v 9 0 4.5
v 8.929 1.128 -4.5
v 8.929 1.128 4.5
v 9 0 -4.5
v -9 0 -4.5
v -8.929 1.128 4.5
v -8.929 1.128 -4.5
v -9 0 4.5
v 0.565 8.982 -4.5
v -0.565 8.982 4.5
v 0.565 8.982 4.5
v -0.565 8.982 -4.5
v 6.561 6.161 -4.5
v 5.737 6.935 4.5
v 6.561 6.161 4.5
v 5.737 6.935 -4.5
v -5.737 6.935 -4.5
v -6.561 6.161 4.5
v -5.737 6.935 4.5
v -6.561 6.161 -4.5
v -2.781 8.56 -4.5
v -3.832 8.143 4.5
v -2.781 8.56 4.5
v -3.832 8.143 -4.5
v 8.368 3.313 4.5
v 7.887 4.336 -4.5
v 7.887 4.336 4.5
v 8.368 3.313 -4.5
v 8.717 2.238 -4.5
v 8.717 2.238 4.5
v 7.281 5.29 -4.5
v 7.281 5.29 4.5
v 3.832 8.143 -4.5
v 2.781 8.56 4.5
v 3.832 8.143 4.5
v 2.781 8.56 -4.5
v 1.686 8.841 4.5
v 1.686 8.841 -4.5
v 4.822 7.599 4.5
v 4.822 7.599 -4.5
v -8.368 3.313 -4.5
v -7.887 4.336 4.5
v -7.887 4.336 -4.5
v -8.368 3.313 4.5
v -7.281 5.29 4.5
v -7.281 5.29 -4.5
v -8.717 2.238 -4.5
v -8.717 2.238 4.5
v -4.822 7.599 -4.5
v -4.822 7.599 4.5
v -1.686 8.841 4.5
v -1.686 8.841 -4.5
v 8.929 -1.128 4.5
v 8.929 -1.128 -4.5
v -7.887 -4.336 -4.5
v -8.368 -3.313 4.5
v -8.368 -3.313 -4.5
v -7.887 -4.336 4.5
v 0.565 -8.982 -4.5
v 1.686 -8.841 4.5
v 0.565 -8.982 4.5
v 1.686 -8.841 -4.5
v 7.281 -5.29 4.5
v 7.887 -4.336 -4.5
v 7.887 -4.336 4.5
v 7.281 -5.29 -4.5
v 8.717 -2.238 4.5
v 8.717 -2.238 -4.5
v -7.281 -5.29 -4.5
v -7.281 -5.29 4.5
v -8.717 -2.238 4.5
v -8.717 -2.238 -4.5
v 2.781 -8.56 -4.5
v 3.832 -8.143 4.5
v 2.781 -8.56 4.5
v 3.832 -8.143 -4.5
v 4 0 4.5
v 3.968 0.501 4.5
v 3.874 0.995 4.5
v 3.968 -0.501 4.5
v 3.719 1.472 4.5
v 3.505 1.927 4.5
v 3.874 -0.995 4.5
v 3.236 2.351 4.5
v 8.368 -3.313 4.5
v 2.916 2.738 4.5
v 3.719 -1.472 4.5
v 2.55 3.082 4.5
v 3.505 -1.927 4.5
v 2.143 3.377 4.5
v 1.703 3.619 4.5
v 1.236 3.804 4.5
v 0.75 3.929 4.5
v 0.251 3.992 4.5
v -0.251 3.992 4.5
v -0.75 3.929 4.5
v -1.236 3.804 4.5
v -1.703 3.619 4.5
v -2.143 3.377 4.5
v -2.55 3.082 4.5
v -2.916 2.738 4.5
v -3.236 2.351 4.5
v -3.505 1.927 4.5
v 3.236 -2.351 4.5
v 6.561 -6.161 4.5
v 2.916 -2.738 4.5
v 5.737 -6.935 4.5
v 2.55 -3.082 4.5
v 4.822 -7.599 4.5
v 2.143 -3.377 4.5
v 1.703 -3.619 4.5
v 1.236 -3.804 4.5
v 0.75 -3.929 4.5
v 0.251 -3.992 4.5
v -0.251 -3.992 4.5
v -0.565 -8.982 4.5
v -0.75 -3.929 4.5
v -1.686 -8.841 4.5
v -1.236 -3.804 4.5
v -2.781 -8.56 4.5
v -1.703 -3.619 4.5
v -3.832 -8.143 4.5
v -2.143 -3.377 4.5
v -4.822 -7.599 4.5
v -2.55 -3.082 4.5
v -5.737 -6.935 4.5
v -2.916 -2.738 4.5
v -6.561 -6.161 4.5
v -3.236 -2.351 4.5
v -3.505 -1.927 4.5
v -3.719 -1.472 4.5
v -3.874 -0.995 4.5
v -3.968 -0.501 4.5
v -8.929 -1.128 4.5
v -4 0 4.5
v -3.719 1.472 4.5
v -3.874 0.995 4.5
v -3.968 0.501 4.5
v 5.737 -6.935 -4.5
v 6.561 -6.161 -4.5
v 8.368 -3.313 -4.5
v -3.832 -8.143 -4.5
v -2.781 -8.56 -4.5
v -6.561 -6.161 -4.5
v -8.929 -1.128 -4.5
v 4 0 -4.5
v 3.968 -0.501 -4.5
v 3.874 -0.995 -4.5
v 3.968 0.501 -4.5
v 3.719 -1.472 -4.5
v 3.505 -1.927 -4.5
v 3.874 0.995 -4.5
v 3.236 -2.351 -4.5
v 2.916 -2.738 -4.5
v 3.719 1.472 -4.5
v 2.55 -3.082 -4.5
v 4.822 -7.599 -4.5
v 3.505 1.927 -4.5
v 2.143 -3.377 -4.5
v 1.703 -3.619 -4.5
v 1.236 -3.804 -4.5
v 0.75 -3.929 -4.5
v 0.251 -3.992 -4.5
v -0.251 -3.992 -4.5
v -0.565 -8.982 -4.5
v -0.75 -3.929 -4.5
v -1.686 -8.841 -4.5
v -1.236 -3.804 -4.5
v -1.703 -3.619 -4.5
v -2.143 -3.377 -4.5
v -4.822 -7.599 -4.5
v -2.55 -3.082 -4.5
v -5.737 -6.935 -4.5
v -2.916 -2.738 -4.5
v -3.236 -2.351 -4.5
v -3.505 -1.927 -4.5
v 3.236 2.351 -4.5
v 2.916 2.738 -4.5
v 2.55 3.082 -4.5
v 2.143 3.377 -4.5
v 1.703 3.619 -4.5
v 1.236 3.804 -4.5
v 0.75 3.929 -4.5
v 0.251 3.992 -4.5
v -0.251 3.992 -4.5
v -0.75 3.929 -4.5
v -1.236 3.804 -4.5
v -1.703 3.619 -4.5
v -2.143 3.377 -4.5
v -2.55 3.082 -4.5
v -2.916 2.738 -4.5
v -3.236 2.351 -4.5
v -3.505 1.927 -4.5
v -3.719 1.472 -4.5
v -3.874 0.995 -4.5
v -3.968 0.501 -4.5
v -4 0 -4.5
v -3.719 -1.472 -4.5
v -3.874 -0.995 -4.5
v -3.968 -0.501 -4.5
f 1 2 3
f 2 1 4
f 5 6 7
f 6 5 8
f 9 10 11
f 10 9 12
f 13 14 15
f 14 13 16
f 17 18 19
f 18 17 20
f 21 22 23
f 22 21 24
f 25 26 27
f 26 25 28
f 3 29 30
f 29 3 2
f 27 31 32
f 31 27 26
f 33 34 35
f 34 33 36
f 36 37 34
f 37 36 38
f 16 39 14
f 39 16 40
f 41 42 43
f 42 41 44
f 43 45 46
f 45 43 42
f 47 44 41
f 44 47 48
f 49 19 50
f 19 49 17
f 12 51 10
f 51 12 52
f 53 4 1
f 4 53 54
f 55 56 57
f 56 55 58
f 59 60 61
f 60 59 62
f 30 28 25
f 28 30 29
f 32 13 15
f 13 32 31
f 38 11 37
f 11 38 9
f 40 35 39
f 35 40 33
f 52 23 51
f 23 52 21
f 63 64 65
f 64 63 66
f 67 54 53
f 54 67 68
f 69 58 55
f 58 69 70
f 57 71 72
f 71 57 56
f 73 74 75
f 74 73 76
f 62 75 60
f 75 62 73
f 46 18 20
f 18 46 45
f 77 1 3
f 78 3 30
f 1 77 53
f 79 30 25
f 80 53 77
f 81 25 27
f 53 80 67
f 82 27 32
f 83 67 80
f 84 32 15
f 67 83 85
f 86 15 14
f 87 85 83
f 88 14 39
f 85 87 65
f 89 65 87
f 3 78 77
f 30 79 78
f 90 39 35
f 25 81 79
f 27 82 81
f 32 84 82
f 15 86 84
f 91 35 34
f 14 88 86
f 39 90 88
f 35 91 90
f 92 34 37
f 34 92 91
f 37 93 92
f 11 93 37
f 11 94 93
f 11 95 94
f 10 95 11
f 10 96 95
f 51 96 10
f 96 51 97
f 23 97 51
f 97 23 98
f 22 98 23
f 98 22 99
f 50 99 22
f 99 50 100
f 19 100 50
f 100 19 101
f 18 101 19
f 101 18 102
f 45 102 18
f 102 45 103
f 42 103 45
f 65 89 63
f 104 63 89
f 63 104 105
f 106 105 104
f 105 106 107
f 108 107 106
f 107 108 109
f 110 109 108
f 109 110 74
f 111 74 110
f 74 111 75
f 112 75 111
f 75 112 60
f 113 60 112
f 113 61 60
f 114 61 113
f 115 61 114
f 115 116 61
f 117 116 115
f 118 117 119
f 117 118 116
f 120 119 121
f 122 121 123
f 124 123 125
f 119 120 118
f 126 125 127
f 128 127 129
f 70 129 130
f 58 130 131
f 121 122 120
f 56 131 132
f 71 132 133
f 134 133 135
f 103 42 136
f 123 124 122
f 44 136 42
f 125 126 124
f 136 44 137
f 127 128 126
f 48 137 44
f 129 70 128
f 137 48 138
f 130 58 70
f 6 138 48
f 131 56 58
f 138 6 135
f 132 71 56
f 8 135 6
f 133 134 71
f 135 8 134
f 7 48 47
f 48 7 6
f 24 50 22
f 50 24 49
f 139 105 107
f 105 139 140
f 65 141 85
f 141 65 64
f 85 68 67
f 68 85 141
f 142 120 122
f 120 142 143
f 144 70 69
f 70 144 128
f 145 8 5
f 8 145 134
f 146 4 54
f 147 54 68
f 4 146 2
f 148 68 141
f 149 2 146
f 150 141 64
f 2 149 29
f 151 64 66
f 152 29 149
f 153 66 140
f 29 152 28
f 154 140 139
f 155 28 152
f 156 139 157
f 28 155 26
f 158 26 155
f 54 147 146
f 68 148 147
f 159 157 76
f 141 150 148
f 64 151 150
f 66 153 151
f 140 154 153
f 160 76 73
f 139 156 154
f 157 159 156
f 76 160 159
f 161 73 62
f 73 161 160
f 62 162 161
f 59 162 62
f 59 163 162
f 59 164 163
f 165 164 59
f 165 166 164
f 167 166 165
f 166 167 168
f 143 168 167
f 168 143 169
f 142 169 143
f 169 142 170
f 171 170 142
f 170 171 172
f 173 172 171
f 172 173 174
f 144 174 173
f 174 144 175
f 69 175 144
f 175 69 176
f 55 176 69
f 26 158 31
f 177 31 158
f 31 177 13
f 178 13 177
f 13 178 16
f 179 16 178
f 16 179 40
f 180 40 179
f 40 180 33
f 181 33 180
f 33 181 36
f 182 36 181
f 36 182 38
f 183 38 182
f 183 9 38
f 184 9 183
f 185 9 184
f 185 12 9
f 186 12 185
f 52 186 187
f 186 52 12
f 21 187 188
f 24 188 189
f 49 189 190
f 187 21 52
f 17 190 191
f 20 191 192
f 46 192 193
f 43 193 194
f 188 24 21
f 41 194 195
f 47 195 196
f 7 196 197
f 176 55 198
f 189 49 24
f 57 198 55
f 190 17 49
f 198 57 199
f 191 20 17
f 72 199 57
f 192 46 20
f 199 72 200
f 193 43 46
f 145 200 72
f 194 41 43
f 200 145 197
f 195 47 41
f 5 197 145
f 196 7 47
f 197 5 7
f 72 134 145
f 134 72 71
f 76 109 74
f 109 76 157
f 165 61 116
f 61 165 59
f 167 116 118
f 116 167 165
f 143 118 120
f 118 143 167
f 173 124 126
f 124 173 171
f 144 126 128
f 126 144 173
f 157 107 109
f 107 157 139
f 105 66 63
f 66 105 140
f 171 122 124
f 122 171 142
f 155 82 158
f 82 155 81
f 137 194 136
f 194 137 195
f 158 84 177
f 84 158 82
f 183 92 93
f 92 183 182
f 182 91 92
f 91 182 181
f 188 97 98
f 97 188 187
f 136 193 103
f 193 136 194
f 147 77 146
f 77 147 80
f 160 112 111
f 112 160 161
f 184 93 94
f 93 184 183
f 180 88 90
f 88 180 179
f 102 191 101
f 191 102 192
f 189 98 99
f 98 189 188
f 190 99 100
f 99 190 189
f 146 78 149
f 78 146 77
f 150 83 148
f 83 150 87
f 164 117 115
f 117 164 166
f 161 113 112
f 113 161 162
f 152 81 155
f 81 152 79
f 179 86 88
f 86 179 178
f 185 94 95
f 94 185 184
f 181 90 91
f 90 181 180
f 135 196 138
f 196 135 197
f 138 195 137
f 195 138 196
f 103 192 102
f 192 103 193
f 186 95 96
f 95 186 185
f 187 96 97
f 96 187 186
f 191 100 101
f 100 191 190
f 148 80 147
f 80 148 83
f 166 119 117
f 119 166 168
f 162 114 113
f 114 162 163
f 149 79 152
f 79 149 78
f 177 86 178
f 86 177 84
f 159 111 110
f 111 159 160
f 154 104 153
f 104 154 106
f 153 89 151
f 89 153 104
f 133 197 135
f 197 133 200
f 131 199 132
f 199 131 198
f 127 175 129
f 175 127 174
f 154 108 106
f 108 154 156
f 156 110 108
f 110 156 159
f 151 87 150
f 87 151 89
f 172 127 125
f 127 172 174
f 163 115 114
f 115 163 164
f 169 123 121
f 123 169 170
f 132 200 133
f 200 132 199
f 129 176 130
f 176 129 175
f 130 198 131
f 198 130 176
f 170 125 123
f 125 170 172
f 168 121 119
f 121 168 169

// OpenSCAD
$fn = 50;


difference() {
	union() {
		translate(v = [0, 0, -4.5000000000]) {
			cylinder(h = 9, r = 9.0000000000);
		}
	}
	union() {
		translate(v = [0, 0, -100.0000000000]) {
			cylinder(h = 200, r = 4.0000000000);
		}
	}
}
